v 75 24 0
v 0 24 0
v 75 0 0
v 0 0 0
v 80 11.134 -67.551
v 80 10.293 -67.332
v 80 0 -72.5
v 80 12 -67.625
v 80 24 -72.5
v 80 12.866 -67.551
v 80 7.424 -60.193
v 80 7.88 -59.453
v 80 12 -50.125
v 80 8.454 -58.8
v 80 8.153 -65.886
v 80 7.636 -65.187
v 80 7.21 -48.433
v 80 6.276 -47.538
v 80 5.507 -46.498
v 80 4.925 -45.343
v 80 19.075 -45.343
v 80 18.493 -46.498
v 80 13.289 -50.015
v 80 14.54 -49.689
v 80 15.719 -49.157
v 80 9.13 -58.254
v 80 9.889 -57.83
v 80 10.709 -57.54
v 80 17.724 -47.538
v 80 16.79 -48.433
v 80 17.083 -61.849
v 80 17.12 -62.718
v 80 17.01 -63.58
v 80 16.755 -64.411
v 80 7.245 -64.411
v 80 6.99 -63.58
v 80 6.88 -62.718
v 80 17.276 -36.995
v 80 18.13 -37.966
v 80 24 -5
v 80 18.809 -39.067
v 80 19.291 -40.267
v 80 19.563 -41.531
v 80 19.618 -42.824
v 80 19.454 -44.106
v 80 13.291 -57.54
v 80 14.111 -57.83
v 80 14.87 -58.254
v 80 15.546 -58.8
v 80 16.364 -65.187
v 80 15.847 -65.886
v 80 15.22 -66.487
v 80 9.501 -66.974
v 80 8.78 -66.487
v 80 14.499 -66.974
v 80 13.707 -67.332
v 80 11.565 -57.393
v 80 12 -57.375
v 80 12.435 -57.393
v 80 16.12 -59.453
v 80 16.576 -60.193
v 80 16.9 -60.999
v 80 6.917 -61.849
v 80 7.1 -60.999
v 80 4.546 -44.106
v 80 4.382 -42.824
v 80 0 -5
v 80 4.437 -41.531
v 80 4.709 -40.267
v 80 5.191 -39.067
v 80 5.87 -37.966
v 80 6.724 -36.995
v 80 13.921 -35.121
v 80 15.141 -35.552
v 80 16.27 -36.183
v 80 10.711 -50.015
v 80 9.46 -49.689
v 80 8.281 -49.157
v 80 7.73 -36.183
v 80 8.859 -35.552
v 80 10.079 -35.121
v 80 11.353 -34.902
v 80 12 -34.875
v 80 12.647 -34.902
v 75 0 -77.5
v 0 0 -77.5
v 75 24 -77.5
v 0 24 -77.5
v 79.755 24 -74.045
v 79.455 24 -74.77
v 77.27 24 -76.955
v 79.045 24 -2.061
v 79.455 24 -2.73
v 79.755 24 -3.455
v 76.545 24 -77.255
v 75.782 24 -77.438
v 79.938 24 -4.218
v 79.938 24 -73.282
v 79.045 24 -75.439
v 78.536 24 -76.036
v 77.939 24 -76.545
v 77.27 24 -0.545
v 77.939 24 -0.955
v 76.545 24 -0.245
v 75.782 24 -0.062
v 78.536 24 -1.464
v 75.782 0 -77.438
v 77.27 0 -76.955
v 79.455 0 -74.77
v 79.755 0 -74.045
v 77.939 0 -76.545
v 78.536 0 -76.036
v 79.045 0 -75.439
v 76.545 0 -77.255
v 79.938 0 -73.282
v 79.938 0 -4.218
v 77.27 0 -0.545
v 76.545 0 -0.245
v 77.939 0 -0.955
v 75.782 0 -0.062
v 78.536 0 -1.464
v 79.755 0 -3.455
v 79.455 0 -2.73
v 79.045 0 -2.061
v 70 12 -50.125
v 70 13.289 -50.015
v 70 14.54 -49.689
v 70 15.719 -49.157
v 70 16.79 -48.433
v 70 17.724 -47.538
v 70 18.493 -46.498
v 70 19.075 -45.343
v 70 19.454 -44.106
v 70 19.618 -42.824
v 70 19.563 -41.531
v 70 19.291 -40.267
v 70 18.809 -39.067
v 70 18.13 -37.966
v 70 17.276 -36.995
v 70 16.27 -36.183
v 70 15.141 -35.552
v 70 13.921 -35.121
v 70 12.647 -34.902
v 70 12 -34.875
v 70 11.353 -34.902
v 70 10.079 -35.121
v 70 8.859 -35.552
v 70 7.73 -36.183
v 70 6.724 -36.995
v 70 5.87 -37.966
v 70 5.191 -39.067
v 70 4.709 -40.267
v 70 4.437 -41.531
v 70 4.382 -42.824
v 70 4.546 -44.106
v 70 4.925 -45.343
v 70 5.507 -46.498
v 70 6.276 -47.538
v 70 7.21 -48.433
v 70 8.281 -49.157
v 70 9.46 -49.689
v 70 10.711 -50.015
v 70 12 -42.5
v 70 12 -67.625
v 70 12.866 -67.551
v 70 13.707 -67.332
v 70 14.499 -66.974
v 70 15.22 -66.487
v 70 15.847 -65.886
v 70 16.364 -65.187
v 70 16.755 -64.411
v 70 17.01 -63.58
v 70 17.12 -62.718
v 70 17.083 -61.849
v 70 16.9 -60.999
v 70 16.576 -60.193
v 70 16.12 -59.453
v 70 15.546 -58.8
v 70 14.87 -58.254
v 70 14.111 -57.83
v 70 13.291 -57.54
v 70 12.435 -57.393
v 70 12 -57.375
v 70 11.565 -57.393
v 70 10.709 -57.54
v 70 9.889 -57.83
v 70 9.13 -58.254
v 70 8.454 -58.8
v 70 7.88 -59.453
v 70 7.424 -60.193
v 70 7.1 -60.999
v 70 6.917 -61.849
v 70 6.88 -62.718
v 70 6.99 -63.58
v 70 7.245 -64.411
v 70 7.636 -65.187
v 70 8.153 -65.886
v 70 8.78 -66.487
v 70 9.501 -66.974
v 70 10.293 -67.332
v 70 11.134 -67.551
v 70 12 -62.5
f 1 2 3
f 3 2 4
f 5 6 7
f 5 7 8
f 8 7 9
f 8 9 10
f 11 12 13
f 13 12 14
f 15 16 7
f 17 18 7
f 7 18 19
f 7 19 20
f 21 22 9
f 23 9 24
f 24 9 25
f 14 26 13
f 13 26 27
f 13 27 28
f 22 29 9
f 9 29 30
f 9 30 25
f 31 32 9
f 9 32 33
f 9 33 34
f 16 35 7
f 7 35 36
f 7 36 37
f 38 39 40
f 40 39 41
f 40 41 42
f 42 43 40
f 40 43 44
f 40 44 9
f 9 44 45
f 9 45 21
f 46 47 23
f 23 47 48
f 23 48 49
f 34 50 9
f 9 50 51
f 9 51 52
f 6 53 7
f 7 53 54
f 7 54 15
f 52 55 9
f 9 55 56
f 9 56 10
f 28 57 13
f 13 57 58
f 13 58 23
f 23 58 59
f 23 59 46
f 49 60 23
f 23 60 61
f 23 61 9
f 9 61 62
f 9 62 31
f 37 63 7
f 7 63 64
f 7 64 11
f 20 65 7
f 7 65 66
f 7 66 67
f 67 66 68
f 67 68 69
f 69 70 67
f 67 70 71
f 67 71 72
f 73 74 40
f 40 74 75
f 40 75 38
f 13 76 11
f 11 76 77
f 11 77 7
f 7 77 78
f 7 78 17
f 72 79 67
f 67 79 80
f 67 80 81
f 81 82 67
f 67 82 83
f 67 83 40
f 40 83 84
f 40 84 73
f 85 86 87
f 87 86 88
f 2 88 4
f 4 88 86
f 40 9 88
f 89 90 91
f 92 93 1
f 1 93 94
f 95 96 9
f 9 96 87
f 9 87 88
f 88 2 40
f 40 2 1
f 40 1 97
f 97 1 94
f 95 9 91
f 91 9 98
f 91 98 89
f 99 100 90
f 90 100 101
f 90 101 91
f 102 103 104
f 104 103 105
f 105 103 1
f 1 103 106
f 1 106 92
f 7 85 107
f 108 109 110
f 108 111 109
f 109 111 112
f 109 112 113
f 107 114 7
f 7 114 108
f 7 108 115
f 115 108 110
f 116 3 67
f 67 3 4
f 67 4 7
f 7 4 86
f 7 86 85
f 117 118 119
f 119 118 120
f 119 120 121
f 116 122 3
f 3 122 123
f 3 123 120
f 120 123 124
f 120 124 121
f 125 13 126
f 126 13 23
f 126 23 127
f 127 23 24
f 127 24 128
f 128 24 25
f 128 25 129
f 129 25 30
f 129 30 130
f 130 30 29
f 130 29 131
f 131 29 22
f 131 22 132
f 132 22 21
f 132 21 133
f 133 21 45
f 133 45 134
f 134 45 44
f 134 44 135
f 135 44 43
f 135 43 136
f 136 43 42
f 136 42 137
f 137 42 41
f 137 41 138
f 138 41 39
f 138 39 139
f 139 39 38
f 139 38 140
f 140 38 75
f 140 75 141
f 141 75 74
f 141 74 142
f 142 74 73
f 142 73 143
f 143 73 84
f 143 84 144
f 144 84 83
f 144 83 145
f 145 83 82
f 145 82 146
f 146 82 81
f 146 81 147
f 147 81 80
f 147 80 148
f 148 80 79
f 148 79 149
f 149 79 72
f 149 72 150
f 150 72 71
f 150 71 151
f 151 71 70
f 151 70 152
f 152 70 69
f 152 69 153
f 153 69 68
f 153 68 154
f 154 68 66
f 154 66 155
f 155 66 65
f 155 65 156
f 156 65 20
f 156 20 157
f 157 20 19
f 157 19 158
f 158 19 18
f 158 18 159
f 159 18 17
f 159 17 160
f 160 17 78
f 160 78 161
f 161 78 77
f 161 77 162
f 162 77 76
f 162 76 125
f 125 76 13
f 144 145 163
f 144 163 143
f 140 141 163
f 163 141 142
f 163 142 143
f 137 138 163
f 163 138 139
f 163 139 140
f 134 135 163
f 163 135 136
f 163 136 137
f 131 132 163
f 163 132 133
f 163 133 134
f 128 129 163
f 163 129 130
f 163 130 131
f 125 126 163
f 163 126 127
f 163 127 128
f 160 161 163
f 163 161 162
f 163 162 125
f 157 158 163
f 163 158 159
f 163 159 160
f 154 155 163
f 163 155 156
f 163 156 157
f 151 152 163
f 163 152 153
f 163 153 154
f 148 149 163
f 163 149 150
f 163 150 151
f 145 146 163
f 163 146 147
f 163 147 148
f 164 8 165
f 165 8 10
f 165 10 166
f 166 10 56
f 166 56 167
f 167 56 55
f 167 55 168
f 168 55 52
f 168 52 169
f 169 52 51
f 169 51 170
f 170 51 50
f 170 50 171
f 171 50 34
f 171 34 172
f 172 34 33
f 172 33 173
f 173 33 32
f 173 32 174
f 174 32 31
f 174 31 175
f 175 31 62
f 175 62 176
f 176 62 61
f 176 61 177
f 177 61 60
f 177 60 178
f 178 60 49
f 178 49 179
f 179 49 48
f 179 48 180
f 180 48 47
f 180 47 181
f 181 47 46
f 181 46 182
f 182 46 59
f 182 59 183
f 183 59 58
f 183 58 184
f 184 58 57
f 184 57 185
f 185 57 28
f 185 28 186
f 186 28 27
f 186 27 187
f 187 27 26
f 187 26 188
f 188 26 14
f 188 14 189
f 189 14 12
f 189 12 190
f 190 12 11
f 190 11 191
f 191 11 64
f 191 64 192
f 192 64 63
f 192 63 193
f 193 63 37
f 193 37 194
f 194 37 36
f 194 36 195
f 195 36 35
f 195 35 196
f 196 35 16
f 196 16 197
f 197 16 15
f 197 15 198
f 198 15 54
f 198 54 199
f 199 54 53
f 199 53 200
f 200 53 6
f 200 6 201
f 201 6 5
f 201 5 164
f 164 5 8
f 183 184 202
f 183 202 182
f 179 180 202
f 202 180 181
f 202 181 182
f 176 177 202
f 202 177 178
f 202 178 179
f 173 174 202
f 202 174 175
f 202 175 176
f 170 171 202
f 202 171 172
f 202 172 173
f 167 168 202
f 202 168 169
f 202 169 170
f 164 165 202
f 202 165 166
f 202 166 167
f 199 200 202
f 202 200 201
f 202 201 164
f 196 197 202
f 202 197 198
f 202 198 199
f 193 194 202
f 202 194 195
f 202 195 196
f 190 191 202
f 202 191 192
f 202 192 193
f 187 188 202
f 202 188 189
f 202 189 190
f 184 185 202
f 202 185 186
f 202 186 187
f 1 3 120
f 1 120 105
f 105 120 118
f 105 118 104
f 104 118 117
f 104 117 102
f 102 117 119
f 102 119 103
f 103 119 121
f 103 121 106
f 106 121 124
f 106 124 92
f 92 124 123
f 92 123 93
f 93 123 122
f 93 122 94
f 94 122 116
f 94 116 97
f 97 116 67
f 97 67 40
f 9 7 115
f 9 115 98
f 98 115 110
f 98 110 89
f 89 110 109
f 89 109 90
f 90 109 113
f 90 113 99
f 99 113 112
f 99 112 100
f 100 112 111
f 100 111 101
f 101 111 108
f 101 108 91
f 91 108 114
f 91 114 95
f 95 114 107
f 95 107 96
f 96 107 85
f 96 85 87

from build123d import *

# Parameters (mm, degrees)
SKETCH1_W           = 80
SKETCH1_H           = 77.5
BOSS_EXTRUDE1_DEPTH = 24
SKETCH2_R           = 5.125
SKETCH2_R_2         = 7.625
CUT_EXTRUDE1_DEPTH  = 10
FILLET1_R           = 5


with BuildPart() as part:
    # Sketch1 → Boss-Extrude1 (new body)
    with BuildSketch(Plane(origin=(0, 0, 0), x_dir=(1, 0, 0), z_dir=(0, 1, 0))):
        with Locations((40, 38.75)):
            Rectangle(SKETCH1_W, SKETCH1_H)
    extrude(amount=BOSS_EXTRUDE1_DEPTH)

    # Sketch2 → Cut-Extrude1 (cut)
    with BuildSketch(Plane(origin=(80, 0, 0), x_dir=(0, 0, -1), z_dir=(1, 0, 0))):
        with Locations((62.5, 12)):
            Circle(SKETCH2_R)
        with Locations((42.5, 12)):
            Circle(SKETCH2_R_2)
    extrude(amount=-CUT_EXTRUDE1_DEPTH, mode=Mode.SUBTRACT)

    # Fillet1
    fillet1_edges = [part.edges().sort_by_distance(p)[0] for p in [
        (80, 12, -77.5),
        (80, 12, 0),
    ]]
    fillet(fillet1_edges, radius=FILLET1_R)


solid = part.part
